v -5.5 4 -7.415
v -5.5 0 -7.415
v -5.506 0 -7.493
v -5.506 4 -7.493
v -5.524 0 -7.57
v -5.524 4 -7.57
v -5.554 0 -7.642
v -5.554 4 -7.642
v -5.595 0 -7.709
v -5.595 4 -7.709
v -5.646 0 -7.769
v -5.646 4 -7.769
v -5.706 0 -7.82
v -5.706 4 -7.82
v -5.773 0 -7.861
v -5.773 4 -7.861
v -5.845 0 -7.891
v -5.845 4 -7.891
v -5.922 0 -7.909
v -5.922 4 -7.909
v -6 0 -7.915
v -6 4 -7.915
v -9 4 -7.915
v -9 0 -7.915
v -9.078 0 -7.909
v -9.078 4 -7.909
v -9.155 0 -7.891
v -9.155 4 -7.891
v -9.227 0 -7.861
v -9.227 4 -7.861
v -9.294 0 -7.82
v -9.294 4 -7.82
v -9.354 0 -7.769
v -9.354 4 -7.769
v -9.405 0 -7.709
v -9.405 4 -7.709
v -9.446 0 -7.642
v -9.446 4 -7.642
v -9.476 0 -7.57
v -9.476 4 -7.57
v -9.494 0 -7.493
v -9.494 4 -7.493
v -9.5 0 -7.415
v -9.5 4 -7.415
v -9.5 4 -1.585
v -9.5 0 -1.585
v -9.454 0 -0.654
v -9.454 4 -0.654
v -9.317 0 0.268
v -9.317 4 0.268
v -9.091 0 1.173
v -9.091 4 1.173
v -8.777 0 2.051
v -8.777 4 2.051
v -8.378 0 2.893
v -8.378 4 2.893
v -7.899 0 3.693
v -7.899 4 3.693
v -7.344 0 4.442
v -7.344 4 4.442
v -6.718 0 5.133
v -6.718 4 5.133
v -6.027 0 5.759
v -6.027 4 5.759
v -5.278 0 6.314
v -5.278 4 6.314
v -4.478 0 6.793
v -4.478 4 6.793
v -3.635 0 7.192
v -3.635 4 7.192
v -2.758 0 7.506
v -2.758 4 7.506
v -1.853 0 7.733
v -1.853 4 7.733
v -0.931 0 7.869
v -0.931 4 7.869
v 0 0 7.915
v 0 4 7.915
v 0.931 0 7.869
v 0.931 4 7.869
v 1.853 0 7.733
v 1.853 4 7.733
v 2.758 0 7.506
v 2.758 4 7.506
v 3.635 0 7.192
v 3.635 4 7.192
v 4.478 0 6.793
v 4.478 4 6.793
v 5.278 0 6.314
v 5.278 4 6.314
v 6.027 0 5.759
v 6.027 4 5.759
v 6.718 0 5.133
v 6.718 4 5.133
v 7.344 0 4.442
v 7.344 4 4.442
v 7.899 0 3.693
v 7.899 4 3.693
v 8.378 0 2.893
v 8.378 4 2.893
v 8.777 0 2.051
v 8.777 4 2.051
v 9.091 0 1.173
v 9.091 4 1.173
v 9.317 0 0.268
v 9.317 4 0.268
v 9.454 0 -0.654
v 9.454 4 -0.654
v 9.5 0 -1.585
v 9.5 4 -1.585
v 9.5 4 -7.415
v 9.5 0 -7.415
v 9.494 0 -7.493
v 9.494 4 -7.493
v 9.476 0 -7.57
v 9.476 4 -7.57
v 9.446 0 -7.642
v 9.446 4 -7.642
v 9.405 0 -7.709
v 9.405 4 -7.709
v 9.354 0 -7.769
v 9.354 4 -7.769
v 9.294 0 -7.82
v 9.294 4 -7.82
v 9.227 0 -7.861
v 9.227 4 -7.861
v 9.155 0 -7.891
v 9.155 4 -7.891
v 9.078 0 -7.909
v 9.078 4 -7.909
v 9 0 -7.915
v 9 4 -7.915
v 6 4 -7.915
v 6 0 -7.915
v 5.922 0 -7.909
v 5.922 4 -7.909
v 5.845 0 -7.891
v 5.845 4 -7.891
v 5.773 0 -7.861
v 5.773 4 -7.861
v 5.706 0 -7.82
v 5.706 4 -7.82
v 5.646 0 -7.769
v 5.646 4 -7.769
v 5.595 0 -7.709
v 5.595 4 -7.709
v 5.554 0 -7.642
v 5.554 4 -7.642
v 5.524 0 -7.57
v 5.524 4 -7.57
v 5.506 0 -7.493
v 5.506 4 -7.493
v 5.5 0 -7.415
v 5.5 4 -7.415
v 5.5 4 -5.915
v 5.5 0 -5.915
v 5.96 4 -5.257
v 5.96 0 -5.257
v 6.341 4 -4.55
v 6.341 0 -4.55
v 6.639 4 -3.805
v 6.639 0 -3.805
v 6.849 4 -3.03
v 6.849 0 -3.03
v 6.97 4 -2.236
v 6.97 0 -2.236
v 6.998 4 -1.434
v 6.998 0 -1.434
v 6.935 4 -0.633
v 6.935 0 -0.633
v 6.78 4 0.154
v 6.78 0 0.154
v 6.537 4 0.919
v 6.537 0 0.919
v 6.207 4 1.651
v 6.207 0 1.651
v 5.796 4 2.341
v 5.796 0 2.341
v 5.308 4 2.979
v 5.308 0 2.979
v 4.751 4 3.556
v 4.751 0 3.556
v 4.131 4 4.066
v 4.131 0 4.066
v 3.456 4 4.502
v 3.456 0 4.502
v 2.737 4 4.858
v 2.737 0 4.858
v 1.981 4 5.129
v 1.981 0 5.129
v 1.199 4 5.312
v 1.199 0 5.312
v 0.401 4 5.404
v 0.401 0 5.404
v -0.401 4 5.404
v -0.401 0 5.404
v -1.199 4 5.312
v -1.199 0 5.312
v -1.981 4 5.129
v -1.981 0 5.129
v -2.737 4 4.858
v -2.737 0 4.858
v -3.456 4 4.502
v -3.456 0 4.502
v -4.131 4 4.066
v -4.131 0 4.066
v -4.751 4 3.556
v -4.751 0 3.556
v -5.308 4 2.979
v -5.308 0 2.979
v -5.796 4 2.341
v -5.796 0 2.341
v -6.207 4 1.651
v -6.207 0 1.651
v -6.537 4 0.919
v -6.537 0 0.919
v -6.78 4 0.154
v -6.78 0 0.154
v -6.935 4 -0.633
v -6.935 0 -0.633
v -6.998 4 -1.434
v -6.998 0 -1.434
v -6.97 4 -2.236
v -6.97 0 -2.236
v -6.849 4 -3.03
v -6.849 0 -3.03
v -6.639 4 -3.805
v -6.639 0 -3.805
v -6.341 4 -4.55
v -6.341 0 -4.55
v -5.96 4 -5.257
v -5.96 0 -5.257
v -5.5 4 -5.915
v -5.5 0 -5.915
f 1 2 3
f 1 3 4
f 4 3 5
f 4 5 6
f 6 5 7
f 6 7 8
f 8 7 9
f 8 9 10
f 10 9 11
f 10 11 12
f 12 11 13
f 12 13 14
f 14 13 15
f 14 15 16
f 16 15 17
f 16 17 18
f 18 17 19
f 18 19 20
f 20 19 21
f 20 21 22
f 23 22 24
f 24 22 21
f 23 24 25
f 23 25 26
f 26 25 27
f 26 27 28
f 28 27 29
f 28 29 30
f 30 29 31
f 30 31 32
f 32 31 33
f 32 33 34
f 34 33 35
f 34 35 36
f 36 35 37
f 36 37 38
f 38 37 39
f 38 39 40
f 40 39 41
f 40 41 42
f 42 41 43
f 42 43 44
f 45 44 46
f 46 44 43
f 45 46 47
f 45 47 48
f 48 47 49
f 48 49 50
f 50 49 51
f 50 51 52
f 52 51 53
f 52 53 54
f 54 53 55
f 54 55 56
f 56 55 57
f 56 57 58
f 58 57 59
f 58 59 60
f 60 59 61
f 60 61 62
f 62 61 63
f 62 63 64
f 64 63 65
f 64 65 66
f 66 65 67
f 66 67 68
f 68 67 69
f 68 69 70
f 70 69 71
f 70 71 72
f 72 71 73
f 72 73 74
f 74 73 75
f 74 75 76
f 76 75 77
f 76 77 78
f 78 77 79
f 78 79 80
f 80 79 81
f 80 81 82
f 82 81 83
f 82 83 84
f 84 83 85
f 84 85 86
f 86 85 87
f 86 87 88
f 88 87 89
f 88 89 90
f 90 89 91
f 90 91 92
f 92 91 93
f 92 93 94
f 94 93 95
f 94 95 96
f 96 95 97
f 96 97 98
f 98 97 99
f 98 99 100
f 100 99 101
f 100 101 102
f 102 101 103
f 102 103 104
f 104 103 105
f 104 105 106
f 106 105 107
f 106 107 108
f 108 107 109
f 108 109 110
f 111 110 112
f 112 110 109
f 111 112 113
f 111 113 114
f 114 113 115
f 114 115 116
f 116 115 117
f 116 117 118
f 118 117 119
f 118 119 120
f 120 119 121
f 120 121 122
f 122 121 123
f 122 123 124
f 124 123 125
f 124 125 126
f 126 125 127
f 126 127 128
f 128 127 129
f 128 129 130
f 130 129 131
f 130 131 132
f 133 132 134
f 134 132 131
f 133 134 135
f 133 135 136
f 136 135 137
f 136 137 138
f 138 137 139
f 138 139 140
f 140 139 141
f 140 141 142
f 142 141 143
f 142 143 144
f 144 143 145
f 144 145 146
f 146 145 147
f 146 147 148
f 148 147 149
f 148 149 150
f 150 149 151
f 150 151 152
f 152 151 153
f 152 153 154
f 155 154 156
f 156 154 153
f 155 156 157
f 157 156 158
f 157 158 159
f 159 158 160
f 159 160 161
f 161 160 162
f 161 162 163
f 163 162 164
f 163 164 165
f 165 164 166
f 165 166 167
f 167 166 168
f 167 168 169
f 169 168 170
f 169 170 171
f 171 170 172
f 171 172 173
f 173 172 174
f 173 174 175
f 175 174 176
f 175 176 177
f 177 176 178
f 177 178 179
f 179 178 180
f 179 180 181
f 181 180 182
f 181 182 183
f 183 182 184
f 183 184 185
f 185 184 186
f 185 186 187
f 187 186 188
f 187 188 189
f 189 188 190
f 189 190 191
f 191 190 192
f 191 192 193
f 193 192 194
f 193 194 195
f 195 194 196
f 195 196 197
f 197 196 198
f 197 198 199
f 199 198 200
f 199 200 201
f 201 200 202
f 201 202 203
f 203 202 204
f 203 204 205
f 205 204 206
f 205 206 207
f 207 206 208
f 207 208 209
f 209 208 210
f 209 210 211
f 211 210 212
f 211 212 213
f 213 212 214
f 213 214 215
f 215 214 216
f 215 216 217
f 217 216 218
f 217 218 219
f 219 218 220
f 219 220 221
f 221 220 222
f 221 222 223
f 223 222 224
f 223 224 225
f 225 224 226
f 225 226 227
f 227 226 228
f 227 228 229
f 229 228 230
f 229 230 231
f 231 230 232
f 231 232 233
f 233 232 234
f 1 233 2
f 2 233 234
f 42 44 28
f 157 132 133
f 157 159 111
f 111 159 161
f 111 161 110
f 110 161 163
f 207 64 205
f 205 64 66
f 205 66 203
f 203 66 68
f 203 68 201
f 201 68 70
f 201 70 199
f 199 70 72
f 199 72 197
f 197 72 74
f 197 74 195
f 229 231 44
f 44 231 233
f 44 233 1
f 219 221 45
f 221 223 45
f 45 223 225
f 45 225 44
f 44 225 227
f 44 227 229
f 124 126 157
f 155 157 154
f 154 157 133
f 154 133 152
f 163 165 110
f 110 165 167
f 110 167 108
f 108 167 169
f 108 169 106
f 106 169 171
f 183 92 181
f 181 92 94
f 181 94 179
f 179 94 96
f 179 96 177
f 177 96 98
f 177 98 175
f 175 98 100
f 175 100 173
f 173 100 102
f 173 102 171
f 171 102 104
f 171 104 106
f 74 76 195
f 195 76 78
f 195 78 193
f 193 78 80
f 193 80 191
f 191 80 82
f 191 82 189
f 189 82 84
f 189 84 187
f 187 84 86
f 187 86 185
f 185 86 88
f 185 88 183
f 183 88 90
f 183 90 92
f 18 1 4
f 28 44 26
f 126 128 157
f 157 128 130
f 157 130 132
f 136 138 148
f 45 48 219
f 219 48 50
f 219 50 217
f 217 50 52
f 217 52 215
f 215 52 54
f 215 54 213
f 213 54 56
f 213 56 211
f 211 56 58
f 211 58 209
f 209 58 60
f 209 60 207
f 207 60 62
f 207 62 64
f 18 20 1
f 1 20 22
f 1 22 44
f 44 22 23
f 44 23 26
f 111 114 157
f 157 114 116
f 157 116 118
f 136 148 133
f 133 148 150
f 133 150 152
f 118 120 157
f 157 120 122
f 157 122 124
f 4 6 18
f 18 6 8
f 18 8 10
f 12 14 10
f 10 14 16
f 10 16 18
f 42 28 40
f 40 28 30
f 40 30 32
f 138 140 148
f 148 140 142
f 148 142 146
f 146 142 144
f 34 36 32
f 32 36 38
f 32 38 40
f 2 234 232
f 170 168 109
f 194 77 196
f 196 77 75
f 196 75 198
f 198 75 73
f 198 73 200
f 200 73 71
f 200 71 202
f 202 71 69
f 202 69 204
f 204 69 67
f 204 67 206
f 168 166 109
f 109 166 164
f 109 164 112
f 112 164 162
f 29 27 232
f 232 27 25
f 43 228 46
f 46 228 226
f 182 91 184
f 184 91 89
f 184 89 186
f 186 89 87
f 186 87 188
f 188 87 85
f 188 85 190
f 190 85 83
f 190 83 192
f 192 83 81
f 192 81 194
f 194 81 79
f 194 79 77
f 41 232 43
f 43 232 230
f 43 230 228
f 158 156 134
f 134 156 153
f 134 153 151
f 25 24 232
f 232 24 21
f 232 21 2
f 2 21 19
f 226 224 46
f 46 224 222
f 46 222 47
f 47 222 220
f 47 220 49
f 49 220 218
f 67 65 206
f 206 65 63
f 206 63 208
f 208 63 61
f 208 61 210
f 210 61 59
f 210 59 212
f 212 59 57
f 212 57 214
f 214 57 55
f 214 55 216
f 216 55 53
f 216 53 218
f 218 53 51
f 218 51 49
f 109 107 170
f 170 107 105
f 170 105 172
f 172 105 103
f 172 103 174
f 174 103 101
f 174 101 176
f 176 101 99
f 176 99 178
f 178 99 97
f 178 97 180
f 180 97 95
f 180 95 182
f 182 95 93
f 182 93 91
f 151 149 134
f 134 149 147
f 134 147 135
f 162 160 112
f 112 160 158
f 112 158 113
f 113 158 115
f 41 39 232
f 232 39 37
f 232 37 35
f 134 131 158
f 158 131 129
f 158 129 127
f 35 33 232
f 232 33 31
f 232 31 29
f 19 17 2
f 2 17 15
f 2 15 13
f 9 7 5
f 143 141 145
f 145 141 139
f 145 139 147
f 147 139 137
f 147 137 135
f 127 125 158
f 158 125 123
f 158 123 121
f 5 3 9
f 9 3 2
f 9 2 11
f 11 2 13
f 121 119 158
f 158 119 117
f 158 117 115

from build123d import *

# Parameters (mm, degrees)
BOSS_EXTRUDE1_DEPTH = 4


with BuildPart() as part:
    # Sketch1 → Boss-Extrude1 (new body)
    with BuildSketch(Plane(origin=(0, 0, 0), x_dir=(1, 0, 0), z_dir=(0, 1, 0))):
        with BuildLine():
            ThreePointArc((-5.5, 7.415063509), (-5.646446609, 7.7686169), (-6, 7.915063509))
            Line((-6, 7.915063509), (-9, 7.915063509))
            ThreePointArc((-9, 7.915063509), (-9.353553391, 7.7686169), (-9.5, 7.415063509))
            Line((-9.5, 7.415063509), (-9.5, 1.584936491))
            ThreePointArc((-9.5, 1.584936491), (0, -7.915063509), (9.5, 1.584936491))
            Line((9.5, 1.584936491), (9.5, 7.415063509))
            ThreePointArc((9.5, 7.415063509), (9.353553391, 7.7686169), (9, 7.915063509))
            Line((9, 7.915063509), (6, 7.915063509))
            ThreePointArc((6, 7.915063509), (5.646446609, 7.7686169), (5.5, 7.415063509))
            Line((5.5, 7.415063509), (5.5, 5.915063509))
            ThreePointArc((5.5, 5.915063509), (6.614378278, 3.876224338), (7, 1.584936491))
            ThreePointArc((7, 1.584936491), (0, -5.415063509), (-7, 1.584936491))
            ThreePointArc((-7, 1.584936491), (-6.614378278, 3.876224338), (-5.5, 5.915063509))
            Line((-5.5, 5.915063509), (-5.5, 7.415063509))
        make_face()
    extrude(amount=BOSS_EXTRUDE1_DEPTH)


solid = part.part
